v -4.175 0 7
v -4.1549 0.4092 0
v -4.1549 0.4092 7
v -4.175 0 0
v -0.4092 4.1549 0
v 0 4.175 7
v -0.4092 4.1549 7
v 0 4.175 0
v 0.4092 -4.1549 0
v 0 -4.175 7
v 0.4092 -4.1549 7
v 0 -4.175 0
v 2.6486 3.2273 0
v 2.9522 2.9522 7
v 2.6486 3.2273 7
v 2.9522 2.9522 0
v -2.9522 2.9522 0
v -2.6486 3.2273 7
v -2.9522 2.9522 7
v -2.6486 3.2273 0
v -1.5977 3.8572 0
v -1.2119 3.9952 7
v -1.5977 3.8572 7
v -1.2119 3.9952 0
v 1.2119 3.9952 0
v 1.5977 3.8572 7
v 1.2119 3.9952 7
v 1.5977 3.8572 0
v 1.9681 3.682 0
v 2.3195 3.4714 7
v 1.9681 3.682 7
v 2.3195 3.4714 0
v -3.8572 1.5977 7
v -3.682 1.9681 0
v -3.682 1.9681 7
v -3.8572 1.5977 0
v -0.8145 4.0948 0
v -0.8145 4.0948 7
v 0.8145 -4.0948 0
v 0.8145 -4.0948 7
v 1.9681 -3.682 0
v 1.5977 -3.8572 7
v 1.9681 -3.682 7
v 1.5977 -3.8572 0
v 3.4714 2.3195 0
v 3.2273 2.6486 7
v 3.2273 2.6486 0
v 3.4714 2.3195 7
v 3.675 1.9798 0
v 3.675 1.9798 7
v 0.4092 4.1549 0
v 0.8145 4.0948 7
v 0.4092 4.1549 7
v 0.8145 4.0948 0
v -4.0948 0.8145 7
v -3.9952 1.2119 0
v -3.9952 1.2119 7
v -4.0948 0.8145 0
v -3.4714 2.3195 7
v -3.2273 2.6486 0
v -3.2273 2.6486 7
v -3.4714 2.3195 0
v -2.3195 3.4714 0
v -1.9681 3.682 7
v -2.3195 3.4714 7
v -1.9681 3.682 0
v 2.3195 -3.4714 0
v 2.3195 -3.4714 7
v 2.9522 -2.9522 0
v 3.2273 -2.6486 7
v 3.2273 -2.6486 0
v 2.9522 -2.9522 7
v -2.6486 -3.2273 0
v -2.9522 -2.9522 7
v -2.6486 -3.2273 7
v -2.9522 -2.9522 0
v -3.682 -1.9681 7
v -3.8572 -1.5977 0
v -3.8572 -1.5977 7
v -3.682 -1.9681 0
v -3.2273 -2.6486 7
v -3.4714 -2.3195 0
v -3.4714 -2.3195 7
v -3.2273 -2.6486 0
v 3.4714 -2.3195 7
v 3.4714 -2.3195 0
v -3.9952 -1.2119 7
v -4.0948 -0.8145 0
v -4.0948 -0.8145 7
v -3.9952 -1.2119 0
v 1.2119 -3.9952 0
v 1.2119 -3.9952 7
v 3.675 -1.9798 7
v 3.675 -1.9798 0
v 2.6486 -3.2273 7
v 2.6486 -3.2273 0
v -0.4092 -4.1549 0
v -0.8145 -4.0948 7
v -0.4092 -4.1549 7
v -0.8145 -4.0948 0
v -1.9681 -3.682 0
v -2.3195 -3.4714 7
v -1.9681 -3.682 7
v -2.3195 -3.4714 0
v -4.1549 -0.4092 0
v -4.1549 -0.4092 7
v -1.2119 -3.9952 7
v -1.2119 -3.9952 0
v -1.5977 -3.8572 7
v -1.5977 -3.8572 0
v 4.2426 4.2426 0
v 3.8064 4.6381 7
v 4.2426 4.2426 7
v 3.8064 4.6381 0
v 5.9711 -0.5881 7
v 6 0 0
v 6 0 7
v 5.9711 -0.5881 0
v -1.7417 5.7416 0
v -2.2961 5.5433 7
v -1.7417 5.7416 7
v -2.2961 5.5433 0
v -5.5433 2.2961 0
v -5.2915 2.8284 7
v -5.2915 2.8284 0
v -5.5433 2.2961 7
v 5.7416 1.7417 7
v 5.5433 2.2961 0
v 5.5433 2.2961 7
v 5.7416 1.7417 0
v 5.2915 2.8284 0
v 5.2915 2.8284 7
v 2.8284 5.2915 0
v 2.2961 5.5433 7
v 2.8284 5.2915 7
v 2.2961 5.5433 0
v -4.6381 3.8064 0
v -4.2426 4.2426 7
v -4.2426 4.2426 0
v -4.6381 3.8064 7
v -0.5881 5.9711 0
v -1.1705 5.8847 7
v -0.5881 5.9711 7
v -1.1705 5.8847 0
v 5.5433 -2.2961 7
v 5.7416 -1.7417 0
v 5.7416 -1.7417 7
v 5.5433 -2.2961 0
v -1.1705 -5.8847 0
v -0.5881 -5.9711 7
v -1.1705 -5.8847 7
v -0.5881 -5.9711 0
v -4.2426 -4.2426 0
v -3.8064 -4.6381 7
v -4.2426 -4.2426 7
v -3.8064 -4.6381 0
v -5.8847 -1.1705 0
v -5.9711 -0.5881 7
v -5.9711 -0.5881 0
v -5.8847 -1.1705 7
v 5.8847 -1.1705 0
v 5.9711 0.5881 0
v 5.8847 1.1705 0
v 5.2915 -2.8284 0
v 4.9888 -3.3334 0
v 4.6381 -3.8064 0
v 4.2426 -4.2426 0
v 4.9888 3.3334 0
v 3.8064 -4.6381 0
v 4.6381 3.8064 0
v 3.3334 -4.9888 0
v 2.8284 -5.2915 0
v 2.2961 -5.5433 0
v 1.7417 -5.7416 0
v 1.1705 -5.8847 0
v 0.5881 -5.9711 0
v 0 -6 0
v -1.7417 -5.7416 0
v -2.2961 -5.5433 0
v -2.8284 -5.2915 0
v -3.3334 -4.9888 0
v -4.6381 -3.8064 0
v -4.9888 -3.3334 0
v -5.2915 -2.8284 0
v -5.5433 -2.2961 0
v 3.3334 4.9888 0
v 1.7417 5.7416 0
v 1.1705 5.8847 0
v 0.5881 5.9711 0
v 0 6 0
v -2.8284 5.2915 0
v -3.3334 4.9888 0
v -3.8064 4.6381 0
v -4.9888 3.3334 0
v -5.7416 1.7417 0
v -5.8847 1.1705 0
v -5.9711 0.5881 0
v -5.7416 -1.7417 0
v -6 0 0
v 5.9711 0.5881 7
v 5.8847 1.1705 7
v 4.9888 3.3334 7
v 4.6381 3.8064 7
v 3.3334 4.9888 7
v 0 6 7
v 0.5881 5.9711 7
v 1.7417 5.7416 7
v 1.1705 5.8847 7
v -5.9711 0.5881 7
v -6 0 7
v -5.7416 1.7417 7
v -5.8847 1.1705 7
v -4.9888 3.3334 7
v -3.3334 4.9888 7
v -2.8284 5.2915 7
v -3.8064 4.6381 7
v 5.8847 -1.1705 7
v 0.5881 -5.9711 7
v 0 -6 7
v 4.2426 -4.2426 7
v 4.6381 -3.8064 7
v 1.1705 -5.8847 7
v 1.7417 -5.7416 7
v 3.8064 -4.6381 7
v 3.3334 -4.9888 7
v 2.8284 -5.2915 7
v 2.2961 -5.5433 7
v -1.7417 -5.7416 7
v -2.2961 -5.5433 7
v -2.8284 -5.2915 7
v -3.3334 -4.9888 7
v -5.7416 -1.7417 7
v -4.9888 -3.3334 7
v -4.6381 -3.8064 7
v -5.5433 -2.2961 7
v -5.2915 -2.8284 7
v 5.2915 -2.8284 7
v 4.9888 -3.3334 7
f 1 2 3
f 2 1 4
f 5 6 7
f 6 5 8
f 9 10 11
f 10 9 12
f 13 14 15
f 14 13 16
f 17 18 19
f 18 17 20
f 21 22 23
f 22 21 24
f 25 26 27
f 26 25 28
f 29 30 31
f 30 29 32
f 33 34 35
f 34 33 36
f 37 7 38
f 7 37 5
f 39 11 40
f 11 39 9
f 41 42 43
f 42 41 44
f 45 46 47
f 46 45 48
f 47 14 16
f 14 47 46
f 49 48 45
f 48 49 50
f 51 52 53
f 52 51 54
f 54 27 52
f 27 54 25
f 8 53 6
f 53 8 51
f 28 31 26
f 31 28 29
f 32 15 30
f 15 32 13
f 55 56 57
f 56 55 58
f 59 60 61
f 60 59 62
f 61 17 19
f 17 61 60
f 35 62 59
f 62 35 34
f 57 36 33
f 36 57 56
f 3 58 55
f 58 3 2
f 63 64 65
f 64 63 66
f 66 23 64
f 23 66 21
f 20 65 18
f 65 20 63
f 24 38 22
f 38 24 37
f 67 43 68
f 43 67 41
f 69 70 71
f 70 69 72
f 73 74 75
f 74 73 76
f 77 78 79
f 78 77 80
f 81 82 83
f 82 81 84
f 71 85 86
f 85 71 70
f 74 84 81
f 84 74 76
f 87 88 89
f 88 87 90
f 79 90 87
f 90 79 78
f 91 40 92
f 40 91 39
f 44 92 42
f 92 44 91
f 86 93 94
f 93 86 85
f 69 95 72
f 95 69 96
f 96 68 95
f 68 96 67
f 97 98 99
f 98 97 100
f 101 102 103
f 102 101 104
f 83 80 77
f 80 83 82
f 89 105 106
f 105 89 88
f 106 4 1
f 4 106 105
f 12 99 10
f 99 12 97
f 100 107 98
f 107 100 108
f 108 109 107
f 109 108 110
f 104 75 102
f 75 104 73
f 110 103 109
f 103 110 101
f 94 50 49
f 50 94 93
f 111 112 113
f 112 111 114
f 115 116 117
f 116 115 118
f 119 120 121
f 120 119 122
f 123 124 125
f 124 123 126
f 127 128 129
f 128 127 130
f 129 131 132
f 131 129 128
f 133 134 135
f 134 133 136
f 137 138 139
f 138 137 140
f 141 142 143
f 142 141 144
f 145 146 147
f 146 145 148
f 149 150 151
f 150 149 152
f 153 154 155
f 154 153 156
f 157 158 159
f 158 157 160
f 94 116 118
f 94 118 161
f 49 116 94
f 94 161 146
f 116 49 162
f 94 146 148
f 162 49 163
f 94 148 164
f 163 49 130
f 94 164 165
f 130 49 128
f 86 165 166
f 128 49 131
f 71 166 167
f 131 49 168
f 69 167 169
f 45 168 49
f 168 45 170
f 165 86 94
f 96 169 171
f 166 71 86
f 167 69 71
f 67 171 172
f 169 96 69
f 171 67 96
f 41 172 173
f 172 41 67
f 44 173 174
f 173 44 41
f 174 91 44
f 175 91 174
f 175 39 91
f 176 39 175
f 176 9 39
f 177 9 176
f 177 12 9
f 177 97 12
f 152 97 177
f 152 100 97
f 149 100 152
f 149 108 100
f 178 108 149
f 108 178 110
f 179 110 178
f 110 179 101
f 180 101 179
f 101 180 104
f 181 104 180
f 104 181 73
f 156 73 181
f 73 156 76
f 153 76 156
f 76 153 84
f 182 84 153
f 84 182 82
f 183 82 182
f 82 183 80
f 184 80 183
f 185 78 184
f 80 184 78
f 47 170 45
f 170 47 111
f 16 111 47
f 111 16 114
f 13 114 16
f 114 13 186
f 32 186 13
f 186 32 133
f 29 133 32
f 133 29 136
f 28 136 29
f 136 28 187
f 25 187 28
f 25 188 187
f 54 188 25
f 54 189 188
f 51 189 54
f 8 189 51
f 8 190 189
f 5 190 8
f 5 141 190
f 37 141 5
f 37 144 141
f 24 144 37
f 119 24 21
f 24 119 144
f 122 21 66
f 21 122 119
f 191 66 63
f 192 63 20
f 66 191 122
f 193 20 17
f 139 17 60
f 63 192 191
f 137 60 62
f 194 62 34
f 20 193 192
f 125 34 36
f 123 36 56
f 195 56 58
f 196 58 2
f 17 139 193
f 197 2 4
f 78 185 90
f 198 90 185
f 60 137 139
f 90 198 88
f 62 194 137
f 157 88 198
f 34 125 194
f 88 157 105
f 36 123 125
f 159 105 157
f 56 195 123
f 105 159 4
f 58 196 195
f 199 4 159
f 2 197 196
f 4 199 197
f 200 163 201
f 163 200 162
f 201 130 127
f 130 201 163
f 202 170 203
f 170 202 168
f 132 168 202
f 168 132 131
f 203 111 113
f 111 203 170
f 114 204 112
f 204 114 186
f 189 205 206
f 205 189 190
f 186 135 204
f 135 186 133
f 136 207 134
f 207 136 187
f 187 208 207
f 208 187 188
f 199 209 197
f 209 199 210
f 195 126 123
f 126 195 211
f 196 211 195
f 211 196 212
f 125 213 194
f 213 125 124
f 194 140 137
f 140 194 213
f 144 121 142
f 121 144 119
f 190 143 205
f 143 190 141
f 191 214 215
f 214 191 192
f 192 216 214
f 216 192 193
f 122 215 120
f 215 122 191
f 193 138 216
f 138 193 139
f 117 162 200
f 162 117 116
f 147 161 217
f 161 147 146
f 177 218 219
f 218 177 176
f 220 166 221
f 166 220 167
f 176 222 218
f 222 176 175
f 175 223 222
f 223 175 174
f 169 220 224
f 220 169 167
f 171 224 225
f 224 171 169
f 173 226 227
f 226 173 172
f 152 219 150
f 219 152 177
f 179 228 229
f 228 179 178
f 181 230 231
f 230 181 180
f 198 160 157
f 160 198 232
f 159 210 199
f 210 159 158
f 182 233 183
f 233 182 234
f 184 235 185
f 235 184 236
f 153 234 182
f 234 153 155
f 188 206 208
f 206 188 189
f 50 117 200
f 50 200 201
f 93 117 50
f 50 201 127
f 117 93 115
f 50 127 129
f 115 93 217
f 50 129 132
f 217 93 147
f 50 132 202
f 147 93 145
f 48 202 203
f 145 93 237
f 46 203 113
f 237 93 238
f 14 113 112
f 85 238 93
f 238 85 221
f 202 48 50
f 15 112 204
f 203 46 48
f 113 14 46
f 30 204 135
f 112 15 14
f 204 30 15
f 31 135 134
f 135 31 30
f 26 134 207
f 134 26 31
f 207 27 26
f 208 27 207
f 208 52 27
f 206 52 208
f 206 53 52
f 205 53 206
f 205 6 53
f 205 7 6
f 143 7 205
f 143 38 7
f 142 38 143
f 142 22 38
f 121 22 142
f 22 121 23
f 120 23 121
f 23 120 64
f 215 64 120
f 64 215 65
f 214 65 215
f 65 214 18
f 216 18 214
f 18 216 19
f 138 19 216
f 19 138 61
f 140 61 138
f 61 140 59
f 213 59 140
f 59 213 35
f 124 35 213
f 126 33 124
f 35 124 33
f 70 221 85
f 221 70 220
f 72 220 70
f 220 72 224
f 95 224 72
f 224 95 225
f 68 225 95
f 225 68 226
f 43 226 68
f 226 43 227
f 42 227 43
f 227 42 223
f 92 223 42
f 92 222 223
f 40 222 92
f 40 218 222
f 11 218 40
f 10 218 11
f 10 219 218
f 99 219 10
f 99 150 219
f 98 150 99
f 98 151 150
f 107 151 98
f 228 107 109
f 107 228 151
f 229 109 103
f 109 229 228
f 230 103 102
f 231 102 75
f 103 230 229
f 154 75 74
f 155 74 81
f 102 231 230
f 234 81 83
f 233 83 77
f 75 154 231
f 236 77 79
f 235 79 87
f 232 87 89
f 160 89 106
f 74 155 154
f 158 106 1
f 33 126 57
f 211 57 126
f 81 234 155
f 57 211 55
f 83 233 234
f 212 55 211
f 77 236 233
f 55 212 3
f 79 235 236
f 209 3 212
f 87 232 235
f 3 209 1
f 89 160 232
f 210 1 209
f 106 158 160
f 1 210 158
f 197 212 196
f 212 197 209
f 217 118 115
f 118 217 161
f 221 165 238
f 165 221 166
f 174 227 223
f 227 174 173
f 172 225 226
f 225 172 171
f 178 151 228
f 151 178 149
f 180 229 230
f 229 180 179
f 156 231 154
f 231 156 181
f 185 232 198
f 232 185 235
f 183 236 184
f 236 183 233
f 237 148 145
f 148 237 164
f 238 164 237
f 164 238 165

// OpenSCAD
// Gen-EB — gap sleeve: rigid spacer on the shaft BETWEEN the two rotor carriers (passes through the stator
// hole). Length = m2m, so it sets the magnet gap and carries the full magnet pull. Print x1, upright.
include <parameters.scad>;
$fn = 64;
// D-flat keyed bore: flat faces +X (angle 0 = magnet pocket 0 = index notch)
module dflat_bore(h) {
    intersection() {
        cylinder(d=shaft_bore, h=h);
        translate([-shaft_bore, -shaft_bore, 0]) cube([shaft_bore + dflat_x, 2*shaft_bore, h]);
    }
}

difference() {
    cylinder(d=sleeve_od, h=m2m);
    translate([0, 0, -0.1]) dflat_bore(m2m + 0.2);
}
